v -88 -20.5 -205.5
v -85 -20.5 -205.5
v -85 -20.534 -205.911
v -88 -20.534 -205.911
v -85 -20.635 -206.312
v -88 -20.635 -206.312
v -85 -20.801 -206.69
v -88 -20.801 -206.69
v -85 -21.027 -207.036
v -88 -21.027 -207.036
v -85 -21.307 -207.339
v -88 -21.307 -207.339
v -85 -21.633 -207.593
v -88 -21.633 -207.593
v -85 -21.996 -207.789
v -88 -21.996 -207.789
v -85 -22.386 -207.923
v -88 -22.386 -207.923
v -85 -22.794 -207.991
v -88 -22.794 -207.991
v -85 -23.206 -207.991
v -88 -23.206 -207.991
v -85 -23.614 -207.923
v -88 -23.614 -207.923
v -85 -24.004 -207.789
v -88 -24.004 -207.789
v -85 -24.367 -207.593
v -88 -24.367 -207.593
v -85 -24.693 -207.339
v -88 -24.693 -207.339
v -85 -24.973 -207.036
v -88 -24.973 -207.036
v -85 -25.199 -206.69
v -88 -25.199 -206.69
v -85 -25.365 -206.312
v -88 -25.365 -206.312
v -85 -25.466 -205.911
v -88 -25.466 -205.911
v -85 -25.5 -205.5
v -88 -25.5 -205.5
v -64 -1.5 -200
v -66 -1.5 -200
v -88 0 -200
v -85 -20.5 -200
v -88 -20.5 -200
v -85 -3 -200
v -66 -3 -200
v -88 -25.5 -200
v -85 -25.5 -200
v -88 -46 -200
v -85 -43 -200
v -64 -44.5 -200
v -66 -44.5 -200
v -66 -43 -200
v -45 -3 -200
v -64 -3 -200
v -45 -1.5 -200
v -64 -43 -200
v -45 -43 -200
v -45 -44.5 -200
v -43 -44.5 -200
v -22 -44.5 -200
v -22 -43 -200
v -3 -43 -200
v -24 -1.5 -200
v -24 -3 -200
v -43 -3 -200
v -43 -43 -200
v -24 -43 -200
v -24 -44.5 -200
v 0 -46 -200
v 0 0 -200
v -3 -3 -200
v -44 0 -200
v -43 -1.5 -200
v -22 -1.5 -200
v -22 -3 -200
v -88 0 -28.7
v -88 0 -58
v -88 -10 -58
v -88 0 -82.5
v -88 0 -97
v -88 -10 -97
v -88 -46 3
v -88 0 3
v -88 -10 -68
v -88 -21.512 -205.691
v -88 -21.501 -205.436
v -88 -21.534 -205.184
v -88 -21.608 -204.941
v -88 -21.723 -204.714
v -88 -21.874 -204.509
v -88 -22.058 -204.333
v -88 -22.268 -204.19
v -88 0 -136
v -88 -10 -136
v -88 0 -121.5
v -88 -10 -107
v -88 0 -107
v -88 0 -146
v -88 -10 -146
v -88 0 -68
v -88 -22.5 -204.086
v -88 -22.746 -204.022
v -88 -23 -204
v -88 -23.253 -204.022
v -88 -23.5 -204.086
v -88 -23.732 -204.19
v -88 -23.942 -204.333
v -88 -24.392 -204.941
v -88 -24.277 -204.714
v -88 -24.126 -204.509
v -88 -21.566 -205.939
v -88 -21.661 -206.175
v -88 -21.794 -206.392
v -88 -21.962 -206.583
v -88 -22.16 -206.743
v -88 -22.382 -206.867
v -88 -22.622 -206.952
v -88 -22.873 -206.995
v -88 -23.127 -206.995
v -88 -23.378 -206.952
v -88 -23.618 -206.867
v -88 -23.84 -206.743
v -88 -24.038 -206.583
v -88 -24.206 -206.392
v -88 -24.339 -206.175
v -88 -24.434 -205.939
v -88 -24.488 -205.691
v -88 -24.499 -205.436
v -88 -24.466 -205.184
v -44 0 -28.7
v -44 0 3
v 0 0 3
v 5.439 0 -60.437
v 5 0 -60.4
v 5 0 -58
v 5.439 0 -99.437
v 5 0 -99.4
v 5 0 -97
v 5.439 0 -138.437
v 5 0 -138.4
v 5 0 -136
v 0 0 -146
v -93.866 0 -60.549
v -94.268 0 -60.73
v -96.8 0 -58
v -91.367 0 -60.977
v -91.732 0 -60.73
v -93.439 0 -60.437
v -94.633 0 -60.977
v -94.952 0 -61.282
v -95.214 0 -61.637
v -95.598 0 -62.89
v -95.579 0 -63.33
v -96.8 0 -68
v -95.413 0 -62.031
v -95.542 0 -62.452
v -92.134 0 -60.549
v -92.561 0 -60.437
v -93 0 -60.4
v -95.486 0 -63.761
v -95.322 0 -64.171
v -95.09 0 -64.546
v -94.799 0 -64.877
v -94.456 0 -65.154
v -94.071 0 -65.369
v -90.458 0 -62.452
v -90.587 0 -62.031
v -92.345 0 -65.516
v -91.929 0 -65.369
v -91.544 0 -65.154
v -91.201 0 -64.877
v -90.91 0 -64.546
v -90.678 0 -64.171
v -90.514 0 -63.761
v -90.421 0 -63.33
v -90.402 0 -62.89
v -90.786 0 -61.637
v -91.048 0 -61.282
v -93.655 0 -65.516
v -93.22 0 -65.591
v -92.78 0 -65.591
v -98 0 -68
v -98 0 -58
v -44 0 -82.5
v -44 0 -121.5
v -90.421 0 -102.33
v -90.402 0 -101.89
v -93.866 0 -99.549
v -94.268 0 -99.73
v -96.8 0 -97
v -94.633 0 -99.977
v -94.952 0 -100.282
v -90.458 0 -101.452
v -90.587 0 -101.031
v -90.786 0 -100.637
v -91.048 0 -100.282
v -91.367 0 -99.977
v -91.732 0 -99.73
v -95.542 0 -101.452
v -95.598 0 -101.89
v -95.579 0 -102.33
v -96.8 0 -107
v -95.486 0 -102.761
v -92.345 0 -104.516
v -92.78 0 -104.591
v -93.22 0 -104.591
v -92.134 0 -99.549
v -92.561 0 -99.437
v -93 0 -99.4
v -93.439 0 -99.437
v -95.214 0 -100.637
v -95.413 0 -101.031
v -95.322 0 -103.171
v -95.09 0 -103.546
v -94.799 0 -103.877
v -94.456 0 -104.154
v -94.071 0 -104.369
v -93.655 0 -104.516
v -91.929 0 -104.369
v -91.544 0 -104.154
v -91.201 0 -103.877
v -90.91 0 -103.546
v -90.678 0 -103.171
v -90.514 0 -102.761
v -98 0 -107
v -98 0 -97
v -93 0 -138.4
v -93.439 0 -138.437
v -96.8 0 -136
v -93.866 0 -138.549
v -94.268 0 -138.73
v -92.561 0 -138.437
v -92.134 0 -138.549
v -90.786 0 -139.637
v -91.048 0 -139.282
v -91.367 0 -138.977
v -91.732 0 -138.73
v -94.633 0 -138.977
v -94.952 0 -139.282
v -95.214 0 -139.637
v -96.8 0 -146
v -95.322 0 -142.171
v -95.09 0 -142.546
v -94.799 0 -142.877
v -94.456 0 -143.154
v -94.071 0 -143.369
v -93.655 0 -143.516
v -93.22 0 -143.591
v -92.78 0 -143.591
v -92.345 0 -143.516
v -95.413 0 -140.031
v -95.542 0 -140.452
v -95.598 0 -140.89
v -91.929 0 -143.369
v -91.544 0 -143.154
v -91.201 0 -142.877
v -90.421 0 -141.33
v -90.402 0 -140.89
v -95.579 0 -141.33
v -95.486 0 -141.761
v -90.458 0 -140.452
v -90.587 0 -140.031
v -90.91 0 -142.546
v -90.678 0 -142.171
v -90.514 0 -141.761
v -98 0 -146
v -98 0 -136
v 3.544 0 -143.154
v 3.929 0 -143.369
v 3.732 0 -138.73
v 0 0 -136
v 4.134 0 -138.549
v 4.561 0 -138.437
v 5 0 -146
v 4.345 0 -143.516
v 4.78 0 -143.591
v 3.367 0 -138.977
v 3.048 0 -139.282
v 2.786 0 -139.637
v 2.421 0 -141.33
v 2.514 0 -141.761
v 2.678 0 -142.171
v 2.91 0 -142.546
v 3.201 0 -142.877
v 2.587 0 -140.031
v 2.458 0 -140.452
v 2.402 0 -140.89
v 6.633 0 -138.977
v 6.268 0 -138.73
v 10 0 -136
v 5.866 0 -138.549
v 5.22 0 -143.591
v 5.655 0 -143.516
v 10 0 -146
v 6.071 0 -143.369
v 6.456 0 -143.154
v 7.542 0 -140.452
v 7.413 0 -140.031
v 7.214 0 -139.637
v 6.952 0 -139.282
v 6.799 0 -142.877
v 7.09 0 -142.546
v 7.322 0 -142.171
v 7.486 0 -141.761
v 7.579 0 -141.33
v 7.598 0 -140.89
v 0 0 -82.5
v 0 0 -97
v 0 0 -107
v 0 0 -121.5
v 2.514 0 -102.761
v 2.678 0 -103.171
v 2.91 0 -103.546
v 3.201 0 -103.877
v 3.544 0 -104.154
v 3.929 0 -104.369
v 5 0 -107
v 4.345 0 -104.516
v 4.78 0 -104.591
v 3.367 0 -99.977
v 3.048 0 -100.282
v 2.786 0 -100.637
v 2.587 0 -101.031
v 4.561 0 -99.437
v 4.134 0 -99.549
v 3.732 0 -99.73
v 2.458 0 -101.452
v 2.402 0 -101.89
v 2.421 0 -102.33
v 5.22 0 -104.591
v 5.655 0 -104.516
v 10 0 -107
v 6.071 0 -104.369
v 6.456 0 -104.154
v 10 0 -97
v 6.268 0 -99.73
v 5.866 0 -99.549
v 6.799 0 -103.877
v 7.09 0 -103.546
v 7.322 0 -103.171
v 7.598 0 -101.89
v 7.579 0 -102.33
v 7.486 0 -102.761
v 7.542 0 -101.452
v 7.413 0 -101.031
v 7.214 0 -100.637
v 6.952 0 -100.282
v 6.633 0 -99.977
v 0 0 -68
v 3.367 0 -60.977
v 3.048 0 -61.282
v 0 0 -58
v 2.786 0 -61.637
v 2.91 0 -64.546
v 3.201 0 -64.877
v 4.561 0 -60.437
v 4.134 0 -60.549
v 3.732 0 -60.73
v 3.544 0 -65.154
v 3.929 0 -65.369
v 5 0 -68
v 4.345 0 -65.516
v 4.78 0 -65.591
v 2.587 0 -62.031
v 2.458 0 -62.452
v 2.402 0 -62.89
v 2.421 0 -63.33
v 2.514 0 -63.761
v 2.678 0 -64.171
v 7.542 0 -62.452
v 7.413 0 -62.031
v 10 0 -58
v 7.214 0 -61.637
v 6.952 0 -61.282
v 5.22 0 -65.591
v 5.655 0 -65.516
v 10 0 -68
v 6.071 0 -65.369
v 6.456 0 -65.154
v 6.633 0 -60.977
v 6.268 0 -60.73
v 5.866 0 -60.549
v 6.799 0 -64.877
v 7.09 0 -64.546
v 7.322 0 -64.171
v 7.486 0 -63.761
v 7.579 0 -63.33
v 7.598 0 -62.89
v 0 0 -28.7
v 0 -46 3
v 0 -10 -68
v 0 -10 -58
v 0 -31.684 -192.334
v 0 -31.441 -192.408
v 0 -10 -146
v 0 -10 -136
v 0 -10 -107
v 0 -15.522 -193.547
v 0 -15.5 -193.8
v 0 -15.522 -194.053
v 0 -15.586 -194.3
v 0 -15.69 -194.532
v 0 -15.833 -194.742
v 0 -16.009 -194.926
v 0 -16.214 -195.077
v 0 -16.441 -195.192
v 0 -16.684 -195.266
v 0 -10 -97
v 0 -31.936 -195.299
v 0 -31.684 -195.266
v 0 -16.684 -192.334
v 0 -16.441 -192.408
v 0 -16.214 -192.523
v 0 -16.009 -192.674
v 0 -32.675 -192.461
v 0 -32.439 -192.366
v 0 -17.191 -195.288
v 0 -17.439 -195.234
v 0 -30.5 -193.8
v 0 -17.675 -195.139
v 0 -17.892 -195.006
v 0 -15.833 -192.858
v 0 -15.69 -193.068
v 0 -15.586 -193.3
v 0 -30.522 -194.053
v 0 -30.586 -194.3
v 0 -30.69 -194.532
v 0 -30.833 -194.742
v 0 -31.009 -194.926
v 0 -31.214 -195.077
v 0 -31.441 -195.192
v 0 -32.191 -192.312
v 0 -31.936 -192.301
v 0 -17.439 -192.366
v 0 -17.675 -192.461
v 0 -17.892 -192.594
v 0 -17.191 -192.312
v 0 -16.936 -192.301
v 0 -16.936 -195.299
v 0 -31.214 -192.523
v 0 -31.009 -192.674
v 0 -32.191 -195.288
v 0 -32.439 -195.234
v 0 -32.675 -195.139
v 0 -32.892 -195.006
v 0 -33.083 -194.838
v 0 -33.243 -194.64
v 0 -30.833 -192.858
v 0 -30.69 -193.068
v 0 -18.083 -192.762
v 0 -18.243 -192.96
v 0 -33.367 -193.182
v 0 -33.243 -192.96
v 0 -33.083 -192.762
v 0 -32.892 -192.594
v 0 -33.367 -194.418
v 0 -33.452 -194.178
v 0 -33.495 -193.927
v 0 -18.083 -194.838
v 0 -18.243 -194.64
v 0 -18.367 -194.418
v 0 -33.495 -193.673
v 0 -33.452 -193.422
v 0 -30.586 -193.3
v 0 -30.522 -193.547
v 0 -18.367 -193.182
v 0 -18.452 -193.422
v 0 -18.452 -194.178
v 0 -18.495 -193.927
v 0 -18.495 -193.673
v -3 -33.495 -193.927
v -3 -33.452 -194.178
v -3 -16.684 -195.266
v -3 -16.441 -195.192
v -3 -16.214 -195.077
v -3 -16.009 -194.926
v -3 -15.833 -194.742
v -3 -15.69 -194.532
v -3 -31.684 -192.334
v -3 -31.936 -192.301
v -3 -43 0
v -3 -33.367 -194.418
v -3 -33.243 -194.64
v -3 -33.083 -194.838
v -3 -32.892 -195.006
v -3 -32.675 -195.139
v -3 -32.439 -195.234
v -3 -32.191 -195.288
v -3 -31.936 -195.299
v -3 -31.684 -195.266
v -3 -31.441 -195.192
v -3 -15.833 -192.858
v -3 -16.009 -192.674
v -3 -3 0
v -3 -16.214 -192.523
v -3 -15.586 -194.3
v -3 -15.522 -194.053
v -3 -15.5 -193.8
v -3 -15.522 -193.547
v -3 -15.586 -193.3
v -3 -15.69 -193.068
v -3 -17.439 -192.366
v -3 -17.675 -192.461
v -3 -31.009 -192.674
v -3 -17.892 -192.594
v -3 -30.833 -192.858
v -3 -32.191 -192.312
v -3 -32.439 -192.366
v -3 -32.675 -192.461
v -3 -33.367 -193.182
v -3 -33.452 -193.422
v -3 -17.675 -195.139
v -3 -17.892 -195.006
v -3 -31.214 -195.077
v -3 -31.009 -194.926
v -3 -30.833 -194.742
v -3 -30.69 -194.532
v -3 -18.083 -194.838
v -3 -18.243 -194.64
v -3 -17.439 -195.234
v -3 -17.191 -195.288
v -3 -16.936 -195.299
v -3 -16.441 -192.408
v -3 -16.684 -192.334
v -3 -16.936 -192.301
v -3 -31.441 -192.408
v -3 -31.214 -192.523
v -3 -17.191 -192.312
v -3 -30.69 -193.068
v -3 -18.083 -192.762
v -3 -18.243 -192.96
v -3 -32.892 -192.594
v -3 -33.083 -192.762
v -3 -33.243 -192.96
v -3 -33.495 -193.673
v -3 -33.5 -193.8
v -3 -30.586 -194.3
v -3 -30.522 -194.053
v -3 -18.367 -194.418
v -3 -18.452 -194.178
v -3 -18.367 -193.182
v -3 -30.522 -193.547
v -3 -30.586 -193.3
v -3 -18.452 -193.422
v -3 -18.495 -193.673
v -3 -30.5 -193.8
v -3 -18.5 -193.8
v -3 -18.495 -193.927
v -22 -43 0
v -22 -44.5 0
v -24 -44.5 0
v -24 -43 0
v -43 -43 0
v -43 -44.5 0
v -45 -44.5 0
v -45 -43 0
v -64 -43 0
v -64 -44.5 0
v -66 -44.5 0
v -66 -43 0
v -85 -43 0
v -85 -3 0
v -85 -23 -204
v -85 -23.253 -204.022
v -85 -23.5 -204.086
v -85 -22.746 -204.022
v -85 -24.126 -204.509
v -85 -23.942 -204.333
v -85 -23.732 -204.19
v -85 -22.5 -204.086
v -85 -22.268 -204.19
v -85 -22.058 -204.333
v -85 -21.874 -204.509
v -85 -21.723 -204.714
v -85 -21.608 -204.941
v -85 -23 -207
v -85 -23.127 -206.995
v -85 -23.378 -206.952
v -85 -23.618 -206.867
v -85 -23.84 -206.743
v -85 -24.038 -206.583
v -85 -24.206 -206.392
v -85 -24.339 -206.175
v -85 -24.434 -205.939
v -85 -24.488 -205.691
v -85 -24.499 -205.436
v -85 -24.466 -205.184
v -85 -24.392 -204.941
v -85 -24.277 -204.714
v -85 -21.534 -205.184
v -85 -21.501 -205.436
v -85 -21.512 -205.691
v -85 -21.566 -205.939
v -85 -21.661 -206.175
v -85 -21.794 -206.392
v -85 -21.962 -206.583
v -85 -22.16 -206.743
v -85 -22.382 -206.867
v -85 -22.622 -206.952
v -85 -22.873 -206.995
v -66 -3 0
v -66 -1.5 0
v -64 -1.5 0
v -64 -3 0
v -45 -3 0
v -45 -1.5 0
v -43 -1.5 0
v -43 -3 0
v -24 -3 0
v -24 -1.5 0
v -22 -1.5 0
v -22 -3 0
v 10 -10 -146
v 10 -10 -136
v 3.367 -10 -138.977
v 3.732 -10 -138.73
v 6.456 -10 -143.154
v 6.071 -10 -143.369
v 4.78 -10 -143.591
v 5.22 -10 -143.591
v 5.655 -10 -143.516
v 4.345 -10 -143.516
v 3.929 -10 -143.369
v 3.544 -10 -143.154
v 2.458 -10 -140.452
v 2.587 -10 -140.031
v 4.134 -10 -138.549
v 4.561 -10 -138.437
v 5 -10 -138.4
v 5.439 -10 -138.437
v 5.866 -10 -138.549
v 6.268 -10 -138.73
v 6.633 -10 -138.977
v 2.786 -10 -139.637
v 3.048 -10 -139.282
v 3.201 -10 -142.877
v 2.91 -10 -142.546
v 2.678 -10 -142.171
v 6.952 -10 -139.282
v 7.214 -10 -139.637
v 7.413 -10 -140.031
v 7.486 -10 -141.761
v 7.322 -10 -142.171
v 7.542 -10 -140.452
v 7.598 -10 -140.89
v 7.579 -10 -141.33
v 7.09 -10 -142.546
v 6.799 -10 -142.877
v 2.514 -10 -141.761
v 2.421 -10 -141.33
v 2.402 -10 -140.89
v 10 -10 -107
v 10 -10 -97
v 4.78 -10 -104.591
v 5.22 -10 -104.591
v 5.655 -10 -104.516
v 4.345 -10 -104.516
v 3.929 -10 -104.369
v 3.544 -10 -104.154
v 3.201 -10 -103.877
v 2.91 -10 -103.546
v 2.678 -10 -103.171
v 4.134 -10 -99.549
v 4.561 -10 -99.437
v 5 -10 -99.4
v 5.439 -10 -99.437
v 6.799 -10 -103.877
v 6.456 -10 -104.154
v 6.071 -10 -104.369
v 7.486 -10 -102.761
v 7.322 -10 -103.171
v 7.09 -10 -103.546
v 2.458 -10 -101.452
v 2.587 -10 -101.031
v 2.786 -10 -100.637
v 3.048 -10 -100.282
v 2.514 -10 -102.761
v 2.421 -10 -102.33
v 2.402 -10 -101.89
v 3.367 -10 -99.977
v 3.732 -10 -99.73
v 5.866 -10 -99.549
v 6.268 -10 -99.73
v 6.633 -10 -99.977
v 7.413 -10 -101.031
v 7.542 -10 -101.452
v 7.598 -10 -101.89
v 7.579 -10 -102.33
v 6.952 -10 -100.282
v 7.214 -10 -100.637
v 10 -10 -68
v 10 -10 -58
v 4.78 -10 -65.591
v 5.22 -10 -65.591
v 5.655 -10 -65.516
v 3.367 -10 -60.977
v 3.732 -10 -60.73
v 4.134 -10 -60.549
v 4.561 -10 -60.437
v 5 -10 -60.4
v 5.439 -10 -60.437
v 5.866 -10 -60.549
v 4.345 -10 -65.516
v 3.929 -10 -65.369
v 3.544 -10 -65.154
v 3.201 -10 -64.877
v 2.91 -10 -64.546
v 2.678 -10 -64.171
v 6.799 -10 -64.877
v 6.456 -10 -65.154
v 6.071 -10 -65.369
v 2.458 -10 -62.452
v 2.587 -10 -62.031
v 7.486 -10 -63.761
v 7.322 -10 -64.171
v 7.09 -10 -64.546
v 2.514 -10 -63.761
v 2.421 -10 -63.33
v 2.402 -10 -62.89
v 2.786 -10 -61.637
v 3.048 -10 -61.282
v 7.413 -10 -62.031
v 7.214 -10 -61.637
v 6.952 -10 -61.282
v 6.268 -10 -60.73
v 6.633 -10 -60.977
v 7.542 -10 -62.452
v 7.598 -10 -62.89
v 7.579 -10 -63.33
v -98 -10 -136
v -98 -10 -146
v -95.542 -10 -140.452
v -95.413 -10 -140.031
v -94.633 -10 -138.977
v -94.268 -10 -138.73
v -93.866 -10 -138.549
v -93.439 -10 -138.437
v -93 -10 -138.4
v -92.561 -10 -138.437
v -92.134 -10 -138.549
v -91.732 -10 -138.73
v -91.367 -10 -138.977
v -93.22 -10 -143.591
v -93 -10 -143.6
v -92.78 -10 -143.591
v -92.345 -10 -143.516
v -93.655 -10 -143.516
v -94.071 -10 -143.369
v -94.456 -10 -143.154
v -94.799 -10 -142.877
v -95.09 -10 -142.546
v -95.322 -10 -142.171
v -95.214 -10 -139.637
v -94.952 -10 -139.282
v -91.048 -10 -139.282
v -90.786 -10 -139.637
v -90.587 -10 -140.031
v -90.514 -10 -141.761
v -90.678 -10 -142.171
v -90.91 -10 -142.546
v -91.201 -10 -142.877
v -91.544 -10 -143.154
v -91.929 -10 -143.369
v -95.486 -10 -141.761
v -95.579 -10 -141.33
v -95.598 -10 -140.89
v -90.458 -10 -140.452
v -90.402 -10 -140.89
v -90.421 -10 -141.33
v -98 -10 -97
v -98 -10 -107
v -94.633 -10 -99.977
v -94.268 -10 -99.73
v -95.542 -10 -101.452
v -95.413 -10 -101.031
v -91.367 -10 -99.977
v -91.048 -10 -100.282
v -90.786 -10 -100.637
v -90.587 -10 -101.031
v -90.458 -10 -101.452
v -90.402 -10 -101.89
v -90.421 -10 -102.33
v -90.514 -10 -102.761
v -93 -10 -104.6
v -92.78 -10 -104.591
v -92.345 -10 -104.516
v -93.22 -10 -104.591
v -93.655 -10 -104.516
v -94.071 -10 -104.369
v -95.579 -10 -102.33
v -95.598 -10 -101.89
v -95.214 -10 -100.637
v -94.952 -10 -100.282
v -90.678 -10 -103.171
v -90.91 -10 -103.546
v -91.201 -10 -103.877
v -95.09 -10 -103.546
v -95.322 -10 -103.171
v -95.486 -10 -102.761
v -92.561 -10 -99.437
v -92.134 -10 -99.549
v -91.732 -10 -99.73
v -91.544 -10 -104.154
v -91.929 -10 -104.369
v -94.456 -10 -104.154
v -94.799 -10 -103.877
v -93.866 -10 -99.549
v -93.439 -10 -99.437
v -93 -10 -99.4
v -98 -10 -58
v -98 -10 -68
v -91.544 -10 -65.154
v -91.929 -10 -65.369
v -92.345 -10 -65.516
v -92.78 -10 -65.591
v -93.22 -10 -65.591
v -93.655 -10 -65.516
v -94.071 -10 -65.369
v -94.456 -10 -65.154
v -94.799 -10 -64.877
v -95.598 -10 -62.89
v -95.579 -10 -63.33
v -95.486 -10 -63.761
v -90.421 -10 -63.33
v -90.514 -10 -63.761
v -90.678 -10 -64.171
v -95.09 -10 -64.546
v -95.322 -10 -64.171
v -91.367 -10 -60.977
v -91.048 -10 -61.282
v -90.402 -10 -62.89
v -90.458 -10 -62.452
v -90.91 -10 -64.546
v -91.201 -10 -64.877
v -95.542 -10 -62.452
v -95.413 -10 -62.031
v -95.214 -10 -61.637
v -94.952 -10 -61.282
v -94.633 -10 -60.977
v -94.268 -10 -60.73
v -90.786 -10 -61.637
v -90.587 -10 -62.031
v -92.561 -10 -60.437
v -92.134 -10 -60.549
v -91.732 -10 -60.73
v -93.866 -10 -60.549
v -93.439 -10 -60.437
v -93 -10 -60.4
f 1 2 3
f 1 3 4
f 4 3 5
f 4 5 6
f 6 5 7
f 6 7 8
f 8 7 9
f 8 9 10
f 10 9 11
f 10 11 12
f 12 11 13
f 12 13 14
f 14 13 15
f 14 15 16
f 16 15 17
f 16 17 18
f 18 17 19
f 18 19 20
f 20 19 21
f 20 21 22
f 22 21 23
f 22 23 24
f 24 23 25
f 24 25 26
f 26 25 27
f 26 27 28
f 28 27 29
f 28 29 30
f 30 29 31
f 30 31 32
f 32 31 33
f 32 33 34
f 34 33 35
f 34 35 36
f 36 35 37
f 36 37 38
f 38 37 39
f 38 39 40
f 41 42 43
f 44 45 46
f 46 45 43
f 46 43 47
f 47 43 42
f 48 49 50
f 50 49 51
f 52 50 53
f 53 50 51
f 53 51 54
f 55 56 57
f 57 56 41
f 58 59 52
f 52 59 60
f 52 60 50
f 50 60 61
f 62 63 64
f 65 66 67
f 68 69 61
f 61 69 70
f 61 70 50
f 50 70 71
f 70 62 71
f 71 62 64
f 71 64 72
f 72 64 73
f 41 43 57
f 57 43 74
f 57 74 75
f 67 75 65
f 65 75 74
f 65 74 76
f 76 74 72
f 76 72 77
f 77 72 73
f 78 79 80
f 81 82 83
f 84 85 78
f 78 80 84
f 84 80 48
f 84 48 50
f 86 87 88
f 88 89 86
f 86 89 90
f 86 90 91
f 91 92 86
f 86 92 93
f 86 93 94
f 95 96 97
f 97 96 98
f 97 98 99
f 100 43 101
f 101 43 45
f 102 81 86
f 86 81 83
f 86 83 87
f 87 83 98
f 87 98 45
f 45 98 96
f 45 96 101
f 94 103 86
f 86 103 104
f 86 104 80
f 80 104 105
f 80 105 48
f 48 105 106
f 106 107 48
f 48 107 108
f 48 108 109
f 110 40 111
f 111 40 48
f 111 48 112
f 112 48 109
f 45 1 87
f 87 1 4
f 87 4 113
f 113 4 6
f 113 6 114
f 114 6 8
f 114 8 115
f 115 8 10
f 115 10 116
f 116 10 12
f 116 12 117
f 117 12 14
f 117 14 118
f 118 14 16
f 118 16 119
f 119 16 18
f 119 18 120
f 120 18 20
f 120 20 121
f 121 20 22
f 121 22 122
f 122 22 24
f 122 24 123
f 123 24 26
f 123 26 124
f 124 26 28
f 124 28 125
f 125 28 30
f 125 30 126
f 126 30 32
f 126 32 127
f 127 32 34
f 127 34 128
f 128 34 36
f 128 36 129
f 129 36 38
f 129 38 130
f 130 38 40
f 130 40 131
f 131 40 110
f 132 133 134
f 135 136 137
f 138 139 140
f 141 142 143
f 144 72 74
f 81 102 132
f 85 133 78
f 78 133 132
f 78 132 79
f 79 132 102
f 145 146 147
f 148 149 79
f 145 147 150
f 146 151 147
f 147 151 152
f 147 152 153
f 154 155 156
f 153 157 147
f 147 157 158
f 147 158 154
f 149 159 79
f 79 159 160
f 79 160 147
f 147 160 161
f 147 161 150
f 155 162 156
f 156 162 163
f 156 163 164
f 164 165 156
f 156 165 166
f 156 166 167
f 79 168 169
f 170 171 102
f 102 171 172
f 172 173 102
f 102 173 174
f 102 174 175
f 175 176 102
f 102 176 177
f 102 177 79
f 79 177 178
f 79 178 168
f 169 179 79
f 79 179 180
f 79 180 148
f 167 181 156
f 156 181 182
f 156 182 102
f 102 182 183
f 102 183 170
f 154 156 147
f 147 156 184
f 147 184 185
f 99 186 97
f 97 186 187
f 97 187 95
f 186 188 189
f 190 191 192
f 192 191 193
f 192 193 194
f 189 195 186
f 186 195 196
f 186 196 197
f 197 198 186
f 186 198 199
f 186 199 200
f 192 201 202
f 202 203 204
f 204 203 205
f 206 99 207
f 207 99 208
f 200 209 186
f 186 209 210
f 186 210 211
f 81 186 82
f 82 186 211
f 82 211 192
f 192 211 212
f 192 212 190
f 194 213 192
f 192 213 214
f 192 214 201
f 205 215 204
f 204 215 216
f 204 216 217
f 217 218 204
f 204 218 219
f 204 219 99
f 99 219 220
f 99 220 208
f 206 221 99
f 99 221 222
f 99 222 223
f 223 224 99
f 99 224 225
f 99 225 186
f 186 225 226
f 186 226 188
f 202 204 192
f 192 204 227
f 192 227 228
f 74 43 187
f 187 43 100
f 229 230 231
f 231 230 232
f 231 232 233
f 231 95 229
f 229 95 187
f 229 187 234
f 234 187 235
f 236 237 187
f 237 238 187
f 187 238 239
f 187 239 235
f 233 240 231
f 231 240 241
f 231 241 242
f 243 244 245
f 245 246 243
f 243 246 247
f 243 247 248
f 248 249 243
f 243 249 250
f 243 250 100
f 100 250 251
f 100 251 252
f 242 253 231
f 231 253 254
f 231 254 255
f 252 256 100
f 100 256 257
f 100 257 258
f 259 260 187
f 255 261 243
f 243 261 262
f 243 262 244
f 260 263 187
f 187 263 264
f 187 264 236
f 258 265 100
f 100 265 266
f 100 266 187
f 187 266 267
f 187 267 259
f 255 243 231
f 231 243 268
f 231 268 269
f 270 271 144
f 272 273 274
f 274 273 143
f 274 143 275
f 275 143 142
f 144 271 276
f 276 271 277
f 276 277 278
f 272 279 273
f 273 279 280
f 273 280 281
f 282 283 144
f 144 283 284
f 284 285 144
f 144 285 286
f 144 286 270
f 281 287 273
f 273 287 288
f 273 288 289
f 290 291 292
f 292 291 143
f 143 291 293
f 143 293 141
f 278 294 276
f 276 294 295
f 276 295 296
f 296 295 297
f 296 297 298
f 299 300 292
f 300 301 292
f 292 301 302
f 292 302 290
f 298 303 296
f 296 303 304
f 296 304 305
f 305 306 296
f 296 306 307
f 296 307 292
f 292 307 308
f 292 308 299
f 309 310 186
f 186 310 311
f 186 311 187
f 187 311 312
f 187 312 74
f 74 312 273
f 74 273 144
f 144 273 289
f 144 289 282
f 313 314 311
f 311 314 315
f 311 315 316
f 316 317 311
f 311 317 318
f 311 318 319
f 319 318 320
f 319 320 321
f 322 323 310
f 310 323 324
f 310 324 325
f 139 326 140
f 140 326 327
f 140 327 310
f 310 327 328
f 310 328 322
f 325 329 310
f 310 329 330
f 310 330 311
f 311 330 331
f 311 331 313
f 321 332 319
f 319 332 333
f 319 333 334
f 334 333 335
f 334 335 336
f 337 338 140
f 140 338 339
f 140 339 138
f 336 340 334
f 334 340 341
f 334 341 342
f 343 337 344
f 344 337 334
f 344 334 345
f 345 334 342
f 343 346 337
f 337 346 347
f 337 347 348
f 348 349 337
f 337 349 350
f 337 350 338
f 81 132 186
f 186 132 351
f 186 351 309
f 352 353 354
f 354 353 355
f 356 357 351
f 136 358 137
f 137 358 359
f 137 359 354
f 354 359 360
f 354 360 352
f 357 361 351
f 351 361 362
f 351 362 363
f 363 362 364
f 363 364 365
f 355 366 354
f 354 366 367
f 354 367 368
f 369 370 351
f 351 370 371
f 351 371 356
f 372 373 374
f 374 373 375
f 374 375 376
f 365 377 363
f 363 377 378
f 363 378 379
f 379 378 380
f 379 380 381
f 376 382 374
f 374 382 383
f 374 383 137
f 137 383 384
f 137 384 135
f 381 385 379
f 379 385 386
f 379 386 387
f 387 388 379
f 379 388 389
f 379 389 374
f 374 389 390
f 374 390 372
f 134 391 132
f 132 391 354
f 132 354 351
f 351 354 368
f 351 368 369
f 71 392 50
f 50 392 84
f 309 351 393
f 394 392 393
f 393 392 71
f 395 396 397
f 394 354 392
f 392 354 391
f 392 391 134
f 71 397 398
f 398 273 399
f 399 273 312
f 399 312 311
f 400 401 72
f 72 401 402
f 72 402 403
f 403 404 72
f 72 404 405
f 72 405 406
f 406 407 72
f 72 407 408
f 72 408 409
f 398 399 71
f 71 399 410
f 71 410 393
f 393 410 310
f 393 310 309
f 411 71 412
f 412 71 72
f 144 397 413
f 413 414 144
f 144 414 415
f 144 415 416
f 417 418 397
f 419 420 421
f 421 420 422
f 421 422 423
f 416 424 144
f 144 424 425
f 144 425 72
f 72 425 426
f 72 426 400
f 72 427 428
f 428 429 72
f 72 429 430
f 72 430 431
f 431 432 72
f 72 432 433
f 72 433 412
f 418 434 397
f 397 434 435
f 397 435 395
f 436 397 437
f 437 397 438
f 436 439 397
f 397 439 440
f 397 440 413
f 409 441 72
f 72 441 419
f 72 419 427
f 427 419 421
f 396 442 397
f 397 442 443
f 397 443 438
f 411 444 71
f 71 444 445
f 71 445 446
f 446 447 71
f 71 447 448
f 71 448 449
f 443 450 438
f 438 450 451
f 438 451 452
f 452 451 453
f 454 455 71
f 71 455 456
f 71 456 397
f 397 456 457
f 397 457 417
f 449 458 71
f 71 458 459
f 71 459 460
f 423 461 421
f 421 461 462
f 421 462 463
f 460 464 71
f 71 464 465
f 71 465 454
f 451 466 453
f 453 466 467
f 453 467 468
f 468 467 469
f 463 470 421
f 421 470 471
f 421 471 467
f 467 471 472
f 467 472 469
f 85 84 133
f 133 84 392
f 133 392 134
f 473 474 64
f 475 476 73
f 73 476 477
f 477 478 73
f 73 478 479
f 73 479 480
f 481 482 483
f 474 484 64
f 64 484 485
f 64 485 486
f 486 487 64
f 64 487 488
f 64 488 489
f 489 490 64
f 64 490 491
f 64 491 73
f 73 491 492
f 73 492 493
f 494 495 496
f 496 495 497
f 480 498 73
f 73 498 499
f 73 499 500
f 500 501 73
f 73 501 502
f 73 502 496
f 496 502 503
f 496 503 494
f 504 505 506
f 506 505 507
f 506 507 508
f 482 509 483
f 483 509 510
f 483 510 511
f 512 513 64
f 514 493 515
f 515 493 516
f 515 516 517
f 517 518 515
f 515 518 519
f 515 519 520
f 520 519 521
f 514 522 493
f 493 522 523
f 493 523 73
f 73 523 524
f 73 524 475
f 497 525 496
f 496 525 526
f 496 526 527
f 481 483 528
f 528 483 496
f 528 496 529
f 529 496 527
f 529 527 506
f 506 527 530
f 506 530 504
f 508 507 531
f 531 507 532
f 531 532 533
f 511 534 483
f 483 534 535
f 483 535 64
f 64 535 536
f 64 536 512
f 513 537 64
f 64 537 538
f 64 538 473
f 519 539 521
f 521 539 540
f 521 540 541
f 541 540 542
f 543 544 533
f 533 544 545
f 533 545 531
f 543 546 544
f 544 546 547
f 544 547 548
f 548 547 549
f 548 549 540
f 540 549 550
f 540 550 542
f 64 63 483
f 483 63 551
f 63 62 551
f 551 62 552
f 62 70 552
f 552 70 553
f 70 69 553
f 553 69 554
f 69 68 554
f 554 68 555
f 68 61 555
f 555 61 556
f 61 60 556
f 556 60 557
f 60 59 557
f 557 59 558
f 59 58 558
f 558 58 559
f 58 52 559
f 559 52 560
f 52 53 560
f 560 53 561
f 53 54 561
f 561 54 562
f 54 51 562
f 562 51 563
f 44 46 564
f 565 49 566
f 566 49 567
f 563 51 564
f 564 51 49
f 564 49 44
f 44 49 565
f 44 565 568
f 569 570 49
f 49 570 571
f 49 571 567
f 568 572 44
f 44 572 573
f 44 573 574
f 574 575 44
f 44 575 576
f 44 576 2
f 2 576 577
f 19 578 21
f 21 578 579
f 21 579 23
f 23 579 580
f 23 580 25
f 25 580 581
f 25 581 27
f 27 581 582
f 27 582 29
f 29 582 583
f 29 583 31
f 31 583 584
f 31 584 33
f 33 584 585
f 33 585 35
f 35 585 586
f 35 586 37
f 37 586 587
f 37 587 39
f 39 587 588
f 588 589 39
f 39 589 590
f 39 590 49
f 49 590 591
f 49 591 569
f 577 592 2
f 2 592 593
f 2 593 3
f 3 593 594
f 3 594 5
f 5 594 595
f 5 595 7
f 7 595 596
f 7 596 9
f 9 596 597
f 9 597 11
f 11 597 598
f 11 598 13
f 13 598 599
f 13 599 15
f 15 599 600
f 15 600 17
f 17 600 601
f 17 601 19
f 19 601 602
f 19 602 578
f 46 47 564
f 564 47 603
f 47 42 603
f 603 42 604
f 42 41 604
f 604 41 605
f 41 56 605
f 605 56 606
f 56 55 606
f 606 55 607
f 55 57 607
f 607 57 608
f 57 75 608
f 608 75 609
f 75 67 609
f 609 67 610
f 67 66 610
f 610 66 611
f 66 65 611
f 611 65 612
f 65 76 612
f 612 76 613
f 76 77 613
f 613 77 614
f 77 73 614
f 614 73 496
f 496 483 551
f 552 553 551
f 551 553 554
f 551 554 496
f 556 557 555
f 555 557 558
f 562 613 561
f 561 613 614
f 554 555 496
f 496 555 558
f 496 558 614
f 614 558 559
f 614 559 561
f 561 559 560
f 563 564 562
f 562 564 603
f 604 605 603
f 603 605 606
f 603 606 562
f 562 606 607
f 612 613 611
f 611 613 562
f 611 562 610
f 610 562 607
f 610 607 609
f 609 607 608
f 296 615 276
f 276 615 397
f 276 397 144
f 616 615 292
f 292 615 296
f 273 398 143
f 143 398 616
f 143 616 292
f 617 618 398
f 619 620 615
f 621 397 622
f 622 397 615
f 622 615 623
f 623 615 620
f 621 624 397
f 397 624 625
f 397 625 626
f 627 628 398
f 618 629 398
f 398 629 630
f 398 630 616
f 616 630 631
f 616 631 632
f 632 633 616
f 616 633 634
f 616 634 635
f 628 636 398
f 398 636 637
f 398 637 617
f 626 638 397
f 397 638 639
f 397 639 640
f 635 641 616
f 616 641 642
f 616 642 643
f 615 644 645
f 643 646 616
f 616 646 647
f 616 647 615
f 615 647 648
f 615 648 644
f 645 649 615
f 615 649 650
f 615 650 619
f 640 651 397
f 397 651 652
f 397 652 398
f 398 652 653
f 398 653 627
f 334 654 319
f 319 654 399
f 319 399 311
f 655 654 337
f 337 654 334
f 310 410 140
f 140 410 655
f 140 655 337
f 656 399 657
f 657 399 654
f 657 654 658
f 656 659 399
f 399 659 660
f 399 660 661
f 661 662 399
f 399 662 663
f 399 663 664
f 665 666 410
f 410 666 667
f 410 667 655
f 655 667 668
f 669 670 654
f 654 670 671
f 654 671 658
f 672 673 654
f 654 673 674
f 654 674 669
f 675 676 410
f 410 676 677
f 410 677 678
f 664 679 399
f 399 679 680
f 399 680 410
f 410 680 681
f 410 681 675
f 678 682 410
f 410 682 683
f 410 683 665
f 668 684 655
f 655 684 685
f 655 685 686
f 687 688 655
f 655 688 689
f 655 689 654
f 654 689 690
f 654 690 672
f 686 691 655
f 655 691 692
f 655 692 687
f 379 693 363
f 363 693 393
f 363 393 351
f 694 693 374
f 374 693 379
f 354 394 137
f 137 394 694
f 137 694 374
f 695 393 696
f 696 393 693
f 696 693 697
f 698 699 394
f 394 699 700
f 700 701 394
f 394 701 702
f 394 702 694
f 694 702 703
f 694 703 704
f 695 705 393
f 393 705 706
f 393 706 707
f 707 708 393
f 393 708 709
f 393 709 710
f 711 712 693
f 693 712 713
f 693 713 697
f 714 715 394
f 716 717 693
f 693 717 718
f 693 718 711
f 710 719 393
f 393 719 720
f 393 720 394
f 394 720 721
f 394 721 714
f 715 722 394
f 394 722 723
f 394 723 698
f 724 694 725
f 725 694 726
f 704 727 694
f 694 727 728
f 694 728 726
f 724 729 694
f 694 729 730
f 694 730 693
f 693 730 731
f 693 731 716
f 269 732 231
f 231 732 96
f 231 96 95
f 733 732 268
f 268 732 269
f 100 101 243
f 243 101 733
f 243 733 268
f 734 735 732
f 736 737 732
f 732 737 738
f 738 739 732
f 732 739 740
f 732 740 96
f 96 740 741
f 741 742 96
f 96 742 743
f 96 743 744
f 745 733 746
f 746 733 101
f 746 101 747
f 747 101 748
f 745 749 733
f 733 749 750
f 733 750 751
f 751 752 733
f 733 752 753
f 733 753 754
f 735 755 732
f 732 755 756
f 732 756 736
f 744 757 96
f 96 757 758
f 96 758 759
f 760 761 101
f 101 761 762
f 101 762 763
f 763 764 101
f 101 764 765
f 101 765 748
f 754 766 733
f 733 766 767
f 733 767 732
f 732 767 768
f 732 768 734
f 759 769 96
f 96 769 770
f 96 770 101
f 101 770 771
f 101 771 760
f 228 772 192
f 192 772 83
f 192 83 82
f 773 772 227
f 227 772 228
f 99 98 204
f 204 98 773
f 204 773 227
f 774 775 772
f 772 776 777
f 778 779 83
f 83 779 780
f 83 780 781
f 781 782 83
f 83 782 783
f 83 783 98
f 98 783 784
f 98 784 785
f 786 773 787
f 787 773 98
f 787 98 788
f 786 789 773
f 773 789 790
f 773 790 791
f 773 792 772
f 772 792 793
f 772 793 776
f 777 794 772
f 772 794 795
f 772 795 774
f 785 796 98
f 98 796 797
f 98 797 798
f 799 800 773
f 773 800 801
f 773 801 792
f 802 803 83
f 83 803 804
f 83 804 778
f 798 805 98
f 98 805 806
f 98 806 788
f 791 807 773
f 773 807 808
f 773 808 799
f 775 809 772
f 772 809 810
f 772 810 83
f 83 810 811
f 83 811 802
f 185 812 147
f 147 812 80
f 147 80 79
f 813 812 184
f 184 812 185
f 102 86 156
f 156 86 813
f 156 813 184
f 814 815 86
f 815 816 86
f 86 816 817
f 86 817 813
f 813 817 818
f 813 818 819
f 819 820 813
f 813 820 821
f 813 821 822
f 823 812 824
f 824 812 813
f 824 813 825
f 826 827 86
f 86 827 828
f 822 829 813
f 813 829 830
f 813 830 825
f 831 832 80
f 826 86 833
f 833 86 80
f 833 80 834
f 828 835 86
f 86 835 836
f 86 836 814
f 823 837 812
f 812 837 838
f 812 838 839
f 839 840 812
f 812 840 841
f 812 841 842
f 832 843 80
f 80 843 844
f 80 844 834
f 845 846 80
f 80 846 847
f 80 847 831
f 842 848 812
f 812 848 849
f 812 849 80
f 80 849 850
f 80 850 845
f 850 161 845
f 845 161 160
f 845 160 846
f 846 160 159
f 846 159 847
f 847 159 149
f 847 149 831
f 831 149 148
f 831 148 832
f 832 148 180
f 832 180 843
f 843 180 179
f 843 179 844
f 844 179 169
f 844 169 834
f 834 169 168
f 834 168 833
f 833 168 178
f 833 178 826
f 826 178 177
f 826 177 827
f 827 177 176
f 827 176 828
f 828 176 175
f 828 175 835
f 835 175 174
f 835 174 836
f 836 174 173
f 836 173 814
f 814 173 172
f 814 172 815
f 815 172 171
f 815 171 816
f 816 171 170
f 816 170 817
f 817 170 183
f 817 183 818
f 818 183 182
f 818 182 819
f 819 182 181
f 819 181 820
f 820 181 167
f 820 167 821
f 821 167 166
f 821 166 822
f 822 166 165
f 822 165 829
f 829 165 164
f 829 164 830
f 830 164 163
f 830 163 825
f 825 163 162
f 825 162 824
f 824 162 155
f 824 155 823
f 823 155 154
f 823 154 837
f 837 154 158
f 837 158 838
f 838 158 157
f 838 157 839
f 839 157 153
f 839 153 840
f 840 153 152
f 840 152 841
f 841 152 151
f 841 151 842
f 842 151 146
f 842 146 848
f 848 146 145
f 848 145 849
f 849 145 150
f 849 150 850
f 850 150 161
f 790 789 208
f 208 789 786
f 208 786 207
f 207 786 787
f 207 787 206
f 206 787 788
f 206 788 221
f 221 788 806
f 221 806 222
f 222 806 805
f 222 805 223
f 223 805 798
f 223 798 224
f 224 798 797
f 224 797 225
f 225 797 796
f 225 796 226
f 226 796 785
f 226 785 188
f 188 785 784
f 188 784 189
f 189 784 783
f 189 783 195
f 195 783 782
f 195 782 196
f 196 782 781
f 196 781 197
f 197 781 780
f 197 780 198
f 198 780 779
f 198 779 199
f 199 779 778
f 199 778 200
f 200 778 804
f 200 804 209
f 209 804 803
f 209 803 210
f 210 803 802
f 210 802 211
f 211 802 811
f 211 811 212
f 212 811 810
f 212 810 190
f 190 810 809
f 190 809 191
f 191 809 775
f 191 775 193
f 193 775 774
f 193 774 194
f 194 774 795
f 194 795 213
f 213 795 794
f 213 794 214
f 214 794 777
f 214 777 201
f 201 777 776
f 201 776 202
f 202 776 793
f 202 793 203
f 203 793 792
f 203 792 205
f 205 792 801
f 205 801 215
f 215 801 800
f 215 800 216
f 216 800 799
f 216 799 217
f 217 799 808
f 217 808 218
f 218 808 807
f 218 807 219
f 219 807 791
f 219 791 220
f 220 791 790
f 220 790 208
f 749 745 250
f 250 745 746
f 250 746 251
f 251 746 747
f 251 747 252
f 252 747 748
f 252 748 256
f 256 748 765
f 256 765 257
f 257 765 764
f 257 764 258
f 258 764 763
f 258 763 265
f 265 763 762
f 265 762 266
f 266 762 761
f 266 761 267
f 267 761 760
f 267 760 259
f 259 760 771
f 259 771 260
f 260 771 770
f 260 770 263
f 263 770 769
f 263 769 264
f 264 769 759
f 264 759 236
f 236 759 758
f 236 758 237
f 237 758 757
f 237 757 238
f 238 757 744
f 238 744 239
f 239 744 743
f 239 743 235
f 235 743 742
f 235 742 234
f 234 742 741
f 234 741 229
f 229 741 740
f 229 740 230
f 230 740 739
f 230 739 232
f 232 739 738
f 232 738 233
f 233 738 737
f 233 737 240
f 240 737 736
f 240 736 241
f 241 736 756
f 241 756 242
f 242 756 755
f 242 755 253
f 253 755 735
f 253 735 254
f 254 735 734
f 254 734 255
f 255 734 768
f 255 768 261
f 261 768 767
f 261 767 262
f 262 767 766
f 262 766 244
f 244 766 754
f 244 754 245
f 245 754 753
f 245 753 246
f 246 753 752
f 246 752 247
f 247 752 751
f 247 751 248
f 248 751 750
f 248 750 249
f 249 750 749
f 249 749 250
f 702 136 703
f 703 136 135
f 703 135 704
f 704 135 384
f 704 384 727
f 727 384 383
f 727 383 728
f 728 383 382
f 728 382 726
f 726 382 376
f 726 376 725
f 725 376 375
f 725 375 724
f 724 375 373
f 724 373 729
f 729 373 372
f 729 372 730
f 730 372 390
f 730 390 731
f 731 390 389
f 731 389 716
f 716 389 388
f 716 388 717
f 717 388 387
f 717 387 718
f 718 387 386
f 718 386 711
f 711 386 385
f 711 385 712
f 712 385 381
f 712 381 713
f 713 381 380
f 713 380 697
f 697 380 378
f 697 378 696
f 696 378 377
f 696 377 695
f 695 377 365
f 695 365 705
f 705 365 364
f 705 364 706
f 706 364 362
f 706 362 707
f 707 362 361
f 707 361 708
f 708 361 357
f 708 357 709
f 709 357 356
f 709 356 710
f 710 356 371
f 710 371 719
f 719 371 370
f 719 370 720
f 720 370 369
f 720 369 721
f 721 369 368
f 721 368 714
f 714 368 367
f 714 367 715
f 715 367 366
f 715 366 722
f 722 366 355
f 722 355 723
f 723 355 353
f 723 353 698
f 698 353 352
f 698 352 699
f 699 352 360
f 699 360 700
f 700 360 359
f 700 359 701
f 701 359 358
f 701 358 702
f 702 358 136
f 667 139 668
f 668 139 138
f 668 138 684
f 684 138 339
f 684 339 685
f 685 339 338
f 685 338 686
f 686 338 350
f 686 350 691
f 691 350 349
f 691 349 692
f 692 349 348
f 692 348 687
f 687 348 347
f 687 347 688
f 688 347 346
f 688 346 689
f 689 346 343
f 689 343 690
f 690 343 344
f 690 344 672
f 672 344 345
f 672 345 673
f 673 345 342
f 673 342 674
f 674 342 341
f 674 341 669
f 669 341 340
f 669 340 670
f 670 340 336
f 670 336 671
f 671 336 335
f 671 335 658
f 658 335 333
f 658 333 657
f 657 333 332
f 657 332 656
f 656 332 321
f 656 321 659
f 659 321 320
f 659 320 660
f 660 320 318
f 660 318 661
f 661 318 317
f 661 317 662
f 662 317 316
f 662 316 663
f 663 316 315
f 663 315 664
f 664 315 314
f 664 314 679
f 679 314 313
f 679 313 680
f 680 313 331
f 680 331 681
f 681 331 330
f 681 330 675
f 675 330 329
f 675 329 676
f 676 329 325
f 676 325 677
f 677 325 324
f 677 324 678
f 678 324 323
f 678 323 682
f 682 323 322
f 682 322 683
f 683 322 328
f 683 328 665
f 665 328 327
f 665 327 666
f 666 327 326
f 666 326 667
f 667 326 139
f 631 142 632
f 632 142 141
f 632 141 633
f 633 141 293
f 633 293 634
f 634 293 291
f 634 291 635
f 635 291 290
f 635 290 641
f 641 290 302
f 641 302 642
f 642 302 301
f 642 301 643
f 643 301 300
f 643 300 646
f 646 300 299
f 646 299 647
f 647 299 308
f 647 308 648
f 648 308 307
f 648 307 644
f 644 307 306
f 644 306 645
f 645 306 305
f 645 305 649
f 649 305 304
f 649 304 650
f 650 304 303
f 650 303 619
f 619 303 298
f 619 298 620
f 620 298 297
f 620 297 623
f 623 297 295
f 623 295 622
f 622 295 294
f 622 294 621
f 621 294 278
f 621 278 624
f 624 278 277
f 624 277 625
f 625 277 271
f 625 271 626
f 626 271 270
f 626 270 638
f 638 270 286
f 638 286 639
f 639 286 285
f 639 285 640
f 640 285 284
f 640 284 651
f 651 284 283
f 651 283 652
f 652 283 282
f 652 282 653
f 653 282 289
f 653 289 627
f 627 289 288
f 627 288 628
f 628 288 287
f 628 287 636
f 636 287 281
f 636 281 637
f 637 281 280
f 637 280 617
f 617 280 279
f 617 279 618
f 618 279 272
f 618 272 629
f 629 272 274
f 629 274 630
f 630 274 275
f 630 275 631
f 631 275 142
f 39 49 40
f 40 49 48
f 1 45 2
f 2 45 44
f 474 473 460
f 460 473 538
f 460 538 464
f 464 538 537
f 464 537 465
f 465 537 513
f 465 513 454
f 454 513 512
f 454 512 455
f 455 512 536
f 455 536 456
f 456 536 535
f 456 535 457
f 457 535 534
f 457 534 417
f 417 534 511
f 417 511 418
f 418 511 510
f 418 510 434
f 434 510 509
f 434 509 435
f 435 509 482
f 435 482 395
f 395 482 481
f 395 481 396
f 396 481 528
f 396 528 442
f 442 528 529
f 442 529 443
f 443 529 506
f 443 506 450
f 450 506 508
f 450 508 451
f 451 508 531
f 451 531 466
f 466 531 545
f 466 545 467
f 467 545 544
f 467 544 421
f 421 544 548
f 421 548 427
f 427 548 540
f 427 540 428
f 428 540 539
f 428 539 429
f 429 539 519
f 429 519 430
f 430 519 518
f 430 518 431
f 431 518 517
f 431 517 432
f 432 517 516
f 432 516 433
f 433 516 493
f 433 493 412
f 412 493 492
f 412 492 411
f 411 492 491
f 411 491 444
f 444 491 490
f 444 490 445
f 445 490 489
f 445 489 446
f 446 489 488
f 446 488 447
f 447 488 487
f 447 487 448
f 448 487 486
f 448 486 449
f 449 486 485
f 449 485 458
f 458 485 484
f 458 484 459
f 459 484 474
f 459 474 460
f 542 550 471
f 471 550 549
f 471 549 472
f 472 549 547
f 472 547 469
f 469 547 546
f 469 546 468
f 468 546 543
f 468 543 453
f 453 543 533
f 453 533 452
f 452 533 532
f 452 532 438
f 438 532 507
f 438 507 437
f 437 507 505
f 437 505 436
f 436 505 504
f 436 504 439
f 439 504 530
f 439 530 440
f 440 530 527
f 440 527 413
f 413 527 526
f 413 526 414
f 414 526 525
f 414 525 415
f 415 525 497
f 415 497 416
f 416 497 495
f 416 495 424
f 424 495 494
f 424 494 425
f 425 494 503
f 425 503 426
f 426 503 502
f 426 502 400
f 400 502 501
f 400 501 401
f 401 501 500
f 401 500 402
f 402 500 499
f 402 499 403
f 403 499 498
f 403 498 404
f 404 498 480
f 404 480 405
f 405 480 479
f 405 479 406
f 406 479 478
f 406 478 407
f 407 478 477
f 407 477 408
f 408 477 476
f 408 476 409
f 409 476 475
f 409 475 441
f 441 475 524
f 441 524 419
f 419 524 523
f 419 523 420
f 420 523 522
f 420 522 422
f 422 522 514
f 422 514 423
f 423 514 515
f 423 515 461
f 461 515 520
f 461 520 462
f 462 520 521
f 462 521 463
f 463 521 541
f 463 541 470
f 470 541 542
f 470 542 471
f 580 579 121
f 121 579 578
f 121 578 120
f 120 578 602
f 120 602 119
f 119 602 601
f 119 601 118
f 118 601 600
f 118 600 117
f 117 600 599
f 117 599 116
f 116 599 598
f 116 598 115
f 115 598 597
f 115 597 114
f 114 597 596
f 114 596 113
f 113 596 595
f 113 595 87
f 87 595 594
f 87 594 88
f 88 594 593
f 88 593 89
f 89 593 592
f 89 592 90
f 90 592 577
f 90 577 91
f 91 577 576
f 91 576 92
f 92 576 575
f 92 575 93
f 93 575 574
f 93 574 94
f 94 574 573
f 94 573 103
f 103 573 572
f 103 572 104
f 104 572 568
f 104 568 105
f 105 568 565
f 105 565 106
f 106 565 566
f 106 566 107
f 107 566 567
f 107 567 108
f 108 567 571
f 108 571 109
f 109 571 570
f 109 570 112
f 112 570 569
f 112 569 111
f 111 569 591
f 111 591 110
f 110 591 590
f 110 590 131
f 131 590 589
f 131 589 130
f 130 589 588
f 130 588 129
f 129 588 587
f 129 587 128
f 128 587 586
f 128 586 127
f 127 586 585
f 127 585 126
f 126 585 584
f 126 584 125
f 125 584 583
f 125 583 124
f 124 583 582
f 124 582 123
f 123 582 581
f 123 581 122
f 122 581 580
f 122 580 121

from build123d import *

# Parameters (mm, degrees)
SKETCH1_W           = 88
SKETCH1_H           = 46
SKETCH1_W_2         = 82
SKETCH1_H_2         = 40
BOSS_EXTRUDE1_DEPTH = 3
SKETCH3_W           = 88
SKETCH3_H           = 46
BOSS_EXTRUDE2_DEPTH = 200
SKETCH4_W           = 10
SKETCH4_H           = 10
BOSS_EXTRUDE3_DEPTH = 10
SKETCH7_R           = 2.6
CUT_EXTRUDE1_DEPTH  = 228.420315715
SKETCH8_W           = 3
SKETCH8_H           = 5
BOSS_EXTRUDE4_DEPTH = 8
FILLET1_RADIUS      = 2.5
FILLET1_LENGTH      = 3
SKETCH10_R          = 1.5
CUT_EXTRUDE3_DEPTH  = 10
SKETCH9_R           = 1.5
CUT_EXTRUDE4_DEPTH  = 10


with BuildPart() as part:
    # Sketch1 → Boss-Extrude1 (new body)
    # profile 1 of 2: a face of its own
    with BuildSketch(Plane.XY):
        with Locations((-44, -23)):
            Rectangle(SKETCH1_W, SKETCH1_H)
        with Locations((-44, -23)):
            Rectangle(SKETCH1_W_2, SKETCH1_H_2, mode=Mode.SUBTRACT)
    # profile 2 of 2: a face of its own
    with BuildSketch(Plane.XY):
        with Locations((-44, -23)):
            Rectangle(SKETCH1_W_2, SKETCH1_H_2)
    extrude(amount=BOSS_EXTRUDE1_DEPTH)

    # Sketch3 → Boss-Extrude2 (add)
    with BuildSketch(Plane(origin=(0, 0, 0), x_dir=(-1, 0, 0), z_dir=(0, 0, -1))):
        with Locations((44, -23)):
            Rectangle(SKETCH3_W, SKETCH3_H)
        Polygon((24, -3), (43, -3), (43, -1.5), (45, -1.5), (45, -3), (64, -3), (64, -1.5), (66, -1.5), (66, -3), (85, -3), (85, -43), (66, -43), (66, -44.5), (64, -44.5), (64, -43), (45, -43), (45, -44.5), (43, -44.5), (43, -43), (24, -43), (24, -44.5), (22, -44.5), (22, -43), (3, -43), (3, -3), (22, -3), (22, -1.5), (24, -1.5), align=None, mode=Mode.SUBTRACT)
    extrude(amount=BOSS_EXTRUDE2_DEPTH)

    # Sketch4 → Boss-Extrude3 (add)
    with BuildSketch(Plane(origin=(0, 0, 0), x_dir=(1, 0, 0), z_dir=(0, 1, 0))):
        with Locations((5, 141)):
            Rectangle(SKETCH4_W, SKETCH4_H)
        with Locations((5, 102)):
            Rectangle(SKETCH4_W, SKETCH4_H)
        with Locations((5, 63)):
            Rectangle(SKETCH4_W, SKETCH4_H)
        with Locations((-93, 141)):
            Rectangle(SKETCH4_W, SKETCH4_H)
        with Locations((-93, 102)):
            Rectangle(SKETCH4_W, SKETCH4_H)
        with Locations((-93, 63)):
            Rectangle(SKETCH4_W, SKETCH4_H)
    extrude(amount=-BOSS_EXTRUDE3_DEPTH)

    # Sketch7 → Cut-Extrude1 (cut, through all)
    with BuildSketch(Plane(origin=(0, 0, 0), x_dir=(1, 0, 0), z_dir=(0, 1, 0))):
        with Locations(Location((-93, 141, 0), (0, 0, 270))):
            Circle(SKETCH7_R)
        with Locations(Location((-93, 102, 0), (0, 0, 270))):
            Circle(SKETCH7_R)
        with Locations(Location((-93, 63, 0), (0, 0, 270))):
            Circle(SKETCH7_R)
        with Locations(Location((5, 141, 0), (0, 0, 270))):
            Circle(SKETCH7_R)
        with Locations(Location((5, 102, 0), (0, 0, 270))):
            Circle(SKETCH7_R)
        with Locations(Location((5, 63, 0), (0, 0, 270))):
            Circle(SKETCH7_R)
    extrude(amount=-CUT_EXTRUDE1_DEPTH, mode=Mode.SUBTRACT)

    # Sketch8 → Boss-Extrude4 (add)
    with BuildSketch(Plane(origin=(0, 0, -200), x_dir=(-1, 0, 0), z_dir=(0, 0, -1))):
        with Locations((86.5, -23)):
            Rectangle(SKETCH8_W, SKETCH8_H)
    extrude(amount=BOSS_EXTRUDE4_DEPTH)

    # Fillet1: full round fillet: the end face becomes a half cylinder, R = half its width
    fillet1_face = Plane((-86.5, -23, -208), x_dir=(-1, 0, 0), z_dir=(0, 0, -1))  # on the end face: x along it, z out of the body
    fillet1_slab = fillet1_face.offset(-FILLET1_RADIUS / 2) * Box(FILLET1_LENGTH, 2 * FILLET1_RADIUS, FILLET1_RADIUS, mode=Mode.PRIVATE)  # the body's end, R deep
    fillet1_round = Plane((-86.5, -23, -205.5), x_dir=(0, 0, -1), z_dir=(-1, 0, 0)) * Cylinder(FILLET1_RADIUS, FILLET1_LENGTH, mode=Mode.PRIVATE)  # its axis R under the face
    add(fillet1_slab - fillet1_round, mode=Mode.SUBTRACT)

    # Sketch10 → Cut-Extrude3 (cut)
    with BuildSketch(Plane(origin=(0, 0, 0), x_dir=(0, 0, -1), z_dir=(1, 0, 0))):
        with Locations(Location((193.8, -32, 0), (0, 0, 90))):
            Circle(SKETCH10_R)
        with Locations(Location((193.8, -17, 0), (0, 0, 90))):
            Circle(SKETCH10_R)
    extrude(amount=-CUT_EXTRUDE3_DEPTH, mode=Mode.SUBTRACT)

    # Sketch9 → Cut-Extrude4 (cut)
    with BuildSketch(Plane.ZY.offset(88)):
        with Locations((-205.5, -23)):
            Circle(SKETCH9_R)
    extrude(amount=-CUT_EXTRUDE4_DEPTH, mode=Mode.SUBTRACT)


solid = part.part
